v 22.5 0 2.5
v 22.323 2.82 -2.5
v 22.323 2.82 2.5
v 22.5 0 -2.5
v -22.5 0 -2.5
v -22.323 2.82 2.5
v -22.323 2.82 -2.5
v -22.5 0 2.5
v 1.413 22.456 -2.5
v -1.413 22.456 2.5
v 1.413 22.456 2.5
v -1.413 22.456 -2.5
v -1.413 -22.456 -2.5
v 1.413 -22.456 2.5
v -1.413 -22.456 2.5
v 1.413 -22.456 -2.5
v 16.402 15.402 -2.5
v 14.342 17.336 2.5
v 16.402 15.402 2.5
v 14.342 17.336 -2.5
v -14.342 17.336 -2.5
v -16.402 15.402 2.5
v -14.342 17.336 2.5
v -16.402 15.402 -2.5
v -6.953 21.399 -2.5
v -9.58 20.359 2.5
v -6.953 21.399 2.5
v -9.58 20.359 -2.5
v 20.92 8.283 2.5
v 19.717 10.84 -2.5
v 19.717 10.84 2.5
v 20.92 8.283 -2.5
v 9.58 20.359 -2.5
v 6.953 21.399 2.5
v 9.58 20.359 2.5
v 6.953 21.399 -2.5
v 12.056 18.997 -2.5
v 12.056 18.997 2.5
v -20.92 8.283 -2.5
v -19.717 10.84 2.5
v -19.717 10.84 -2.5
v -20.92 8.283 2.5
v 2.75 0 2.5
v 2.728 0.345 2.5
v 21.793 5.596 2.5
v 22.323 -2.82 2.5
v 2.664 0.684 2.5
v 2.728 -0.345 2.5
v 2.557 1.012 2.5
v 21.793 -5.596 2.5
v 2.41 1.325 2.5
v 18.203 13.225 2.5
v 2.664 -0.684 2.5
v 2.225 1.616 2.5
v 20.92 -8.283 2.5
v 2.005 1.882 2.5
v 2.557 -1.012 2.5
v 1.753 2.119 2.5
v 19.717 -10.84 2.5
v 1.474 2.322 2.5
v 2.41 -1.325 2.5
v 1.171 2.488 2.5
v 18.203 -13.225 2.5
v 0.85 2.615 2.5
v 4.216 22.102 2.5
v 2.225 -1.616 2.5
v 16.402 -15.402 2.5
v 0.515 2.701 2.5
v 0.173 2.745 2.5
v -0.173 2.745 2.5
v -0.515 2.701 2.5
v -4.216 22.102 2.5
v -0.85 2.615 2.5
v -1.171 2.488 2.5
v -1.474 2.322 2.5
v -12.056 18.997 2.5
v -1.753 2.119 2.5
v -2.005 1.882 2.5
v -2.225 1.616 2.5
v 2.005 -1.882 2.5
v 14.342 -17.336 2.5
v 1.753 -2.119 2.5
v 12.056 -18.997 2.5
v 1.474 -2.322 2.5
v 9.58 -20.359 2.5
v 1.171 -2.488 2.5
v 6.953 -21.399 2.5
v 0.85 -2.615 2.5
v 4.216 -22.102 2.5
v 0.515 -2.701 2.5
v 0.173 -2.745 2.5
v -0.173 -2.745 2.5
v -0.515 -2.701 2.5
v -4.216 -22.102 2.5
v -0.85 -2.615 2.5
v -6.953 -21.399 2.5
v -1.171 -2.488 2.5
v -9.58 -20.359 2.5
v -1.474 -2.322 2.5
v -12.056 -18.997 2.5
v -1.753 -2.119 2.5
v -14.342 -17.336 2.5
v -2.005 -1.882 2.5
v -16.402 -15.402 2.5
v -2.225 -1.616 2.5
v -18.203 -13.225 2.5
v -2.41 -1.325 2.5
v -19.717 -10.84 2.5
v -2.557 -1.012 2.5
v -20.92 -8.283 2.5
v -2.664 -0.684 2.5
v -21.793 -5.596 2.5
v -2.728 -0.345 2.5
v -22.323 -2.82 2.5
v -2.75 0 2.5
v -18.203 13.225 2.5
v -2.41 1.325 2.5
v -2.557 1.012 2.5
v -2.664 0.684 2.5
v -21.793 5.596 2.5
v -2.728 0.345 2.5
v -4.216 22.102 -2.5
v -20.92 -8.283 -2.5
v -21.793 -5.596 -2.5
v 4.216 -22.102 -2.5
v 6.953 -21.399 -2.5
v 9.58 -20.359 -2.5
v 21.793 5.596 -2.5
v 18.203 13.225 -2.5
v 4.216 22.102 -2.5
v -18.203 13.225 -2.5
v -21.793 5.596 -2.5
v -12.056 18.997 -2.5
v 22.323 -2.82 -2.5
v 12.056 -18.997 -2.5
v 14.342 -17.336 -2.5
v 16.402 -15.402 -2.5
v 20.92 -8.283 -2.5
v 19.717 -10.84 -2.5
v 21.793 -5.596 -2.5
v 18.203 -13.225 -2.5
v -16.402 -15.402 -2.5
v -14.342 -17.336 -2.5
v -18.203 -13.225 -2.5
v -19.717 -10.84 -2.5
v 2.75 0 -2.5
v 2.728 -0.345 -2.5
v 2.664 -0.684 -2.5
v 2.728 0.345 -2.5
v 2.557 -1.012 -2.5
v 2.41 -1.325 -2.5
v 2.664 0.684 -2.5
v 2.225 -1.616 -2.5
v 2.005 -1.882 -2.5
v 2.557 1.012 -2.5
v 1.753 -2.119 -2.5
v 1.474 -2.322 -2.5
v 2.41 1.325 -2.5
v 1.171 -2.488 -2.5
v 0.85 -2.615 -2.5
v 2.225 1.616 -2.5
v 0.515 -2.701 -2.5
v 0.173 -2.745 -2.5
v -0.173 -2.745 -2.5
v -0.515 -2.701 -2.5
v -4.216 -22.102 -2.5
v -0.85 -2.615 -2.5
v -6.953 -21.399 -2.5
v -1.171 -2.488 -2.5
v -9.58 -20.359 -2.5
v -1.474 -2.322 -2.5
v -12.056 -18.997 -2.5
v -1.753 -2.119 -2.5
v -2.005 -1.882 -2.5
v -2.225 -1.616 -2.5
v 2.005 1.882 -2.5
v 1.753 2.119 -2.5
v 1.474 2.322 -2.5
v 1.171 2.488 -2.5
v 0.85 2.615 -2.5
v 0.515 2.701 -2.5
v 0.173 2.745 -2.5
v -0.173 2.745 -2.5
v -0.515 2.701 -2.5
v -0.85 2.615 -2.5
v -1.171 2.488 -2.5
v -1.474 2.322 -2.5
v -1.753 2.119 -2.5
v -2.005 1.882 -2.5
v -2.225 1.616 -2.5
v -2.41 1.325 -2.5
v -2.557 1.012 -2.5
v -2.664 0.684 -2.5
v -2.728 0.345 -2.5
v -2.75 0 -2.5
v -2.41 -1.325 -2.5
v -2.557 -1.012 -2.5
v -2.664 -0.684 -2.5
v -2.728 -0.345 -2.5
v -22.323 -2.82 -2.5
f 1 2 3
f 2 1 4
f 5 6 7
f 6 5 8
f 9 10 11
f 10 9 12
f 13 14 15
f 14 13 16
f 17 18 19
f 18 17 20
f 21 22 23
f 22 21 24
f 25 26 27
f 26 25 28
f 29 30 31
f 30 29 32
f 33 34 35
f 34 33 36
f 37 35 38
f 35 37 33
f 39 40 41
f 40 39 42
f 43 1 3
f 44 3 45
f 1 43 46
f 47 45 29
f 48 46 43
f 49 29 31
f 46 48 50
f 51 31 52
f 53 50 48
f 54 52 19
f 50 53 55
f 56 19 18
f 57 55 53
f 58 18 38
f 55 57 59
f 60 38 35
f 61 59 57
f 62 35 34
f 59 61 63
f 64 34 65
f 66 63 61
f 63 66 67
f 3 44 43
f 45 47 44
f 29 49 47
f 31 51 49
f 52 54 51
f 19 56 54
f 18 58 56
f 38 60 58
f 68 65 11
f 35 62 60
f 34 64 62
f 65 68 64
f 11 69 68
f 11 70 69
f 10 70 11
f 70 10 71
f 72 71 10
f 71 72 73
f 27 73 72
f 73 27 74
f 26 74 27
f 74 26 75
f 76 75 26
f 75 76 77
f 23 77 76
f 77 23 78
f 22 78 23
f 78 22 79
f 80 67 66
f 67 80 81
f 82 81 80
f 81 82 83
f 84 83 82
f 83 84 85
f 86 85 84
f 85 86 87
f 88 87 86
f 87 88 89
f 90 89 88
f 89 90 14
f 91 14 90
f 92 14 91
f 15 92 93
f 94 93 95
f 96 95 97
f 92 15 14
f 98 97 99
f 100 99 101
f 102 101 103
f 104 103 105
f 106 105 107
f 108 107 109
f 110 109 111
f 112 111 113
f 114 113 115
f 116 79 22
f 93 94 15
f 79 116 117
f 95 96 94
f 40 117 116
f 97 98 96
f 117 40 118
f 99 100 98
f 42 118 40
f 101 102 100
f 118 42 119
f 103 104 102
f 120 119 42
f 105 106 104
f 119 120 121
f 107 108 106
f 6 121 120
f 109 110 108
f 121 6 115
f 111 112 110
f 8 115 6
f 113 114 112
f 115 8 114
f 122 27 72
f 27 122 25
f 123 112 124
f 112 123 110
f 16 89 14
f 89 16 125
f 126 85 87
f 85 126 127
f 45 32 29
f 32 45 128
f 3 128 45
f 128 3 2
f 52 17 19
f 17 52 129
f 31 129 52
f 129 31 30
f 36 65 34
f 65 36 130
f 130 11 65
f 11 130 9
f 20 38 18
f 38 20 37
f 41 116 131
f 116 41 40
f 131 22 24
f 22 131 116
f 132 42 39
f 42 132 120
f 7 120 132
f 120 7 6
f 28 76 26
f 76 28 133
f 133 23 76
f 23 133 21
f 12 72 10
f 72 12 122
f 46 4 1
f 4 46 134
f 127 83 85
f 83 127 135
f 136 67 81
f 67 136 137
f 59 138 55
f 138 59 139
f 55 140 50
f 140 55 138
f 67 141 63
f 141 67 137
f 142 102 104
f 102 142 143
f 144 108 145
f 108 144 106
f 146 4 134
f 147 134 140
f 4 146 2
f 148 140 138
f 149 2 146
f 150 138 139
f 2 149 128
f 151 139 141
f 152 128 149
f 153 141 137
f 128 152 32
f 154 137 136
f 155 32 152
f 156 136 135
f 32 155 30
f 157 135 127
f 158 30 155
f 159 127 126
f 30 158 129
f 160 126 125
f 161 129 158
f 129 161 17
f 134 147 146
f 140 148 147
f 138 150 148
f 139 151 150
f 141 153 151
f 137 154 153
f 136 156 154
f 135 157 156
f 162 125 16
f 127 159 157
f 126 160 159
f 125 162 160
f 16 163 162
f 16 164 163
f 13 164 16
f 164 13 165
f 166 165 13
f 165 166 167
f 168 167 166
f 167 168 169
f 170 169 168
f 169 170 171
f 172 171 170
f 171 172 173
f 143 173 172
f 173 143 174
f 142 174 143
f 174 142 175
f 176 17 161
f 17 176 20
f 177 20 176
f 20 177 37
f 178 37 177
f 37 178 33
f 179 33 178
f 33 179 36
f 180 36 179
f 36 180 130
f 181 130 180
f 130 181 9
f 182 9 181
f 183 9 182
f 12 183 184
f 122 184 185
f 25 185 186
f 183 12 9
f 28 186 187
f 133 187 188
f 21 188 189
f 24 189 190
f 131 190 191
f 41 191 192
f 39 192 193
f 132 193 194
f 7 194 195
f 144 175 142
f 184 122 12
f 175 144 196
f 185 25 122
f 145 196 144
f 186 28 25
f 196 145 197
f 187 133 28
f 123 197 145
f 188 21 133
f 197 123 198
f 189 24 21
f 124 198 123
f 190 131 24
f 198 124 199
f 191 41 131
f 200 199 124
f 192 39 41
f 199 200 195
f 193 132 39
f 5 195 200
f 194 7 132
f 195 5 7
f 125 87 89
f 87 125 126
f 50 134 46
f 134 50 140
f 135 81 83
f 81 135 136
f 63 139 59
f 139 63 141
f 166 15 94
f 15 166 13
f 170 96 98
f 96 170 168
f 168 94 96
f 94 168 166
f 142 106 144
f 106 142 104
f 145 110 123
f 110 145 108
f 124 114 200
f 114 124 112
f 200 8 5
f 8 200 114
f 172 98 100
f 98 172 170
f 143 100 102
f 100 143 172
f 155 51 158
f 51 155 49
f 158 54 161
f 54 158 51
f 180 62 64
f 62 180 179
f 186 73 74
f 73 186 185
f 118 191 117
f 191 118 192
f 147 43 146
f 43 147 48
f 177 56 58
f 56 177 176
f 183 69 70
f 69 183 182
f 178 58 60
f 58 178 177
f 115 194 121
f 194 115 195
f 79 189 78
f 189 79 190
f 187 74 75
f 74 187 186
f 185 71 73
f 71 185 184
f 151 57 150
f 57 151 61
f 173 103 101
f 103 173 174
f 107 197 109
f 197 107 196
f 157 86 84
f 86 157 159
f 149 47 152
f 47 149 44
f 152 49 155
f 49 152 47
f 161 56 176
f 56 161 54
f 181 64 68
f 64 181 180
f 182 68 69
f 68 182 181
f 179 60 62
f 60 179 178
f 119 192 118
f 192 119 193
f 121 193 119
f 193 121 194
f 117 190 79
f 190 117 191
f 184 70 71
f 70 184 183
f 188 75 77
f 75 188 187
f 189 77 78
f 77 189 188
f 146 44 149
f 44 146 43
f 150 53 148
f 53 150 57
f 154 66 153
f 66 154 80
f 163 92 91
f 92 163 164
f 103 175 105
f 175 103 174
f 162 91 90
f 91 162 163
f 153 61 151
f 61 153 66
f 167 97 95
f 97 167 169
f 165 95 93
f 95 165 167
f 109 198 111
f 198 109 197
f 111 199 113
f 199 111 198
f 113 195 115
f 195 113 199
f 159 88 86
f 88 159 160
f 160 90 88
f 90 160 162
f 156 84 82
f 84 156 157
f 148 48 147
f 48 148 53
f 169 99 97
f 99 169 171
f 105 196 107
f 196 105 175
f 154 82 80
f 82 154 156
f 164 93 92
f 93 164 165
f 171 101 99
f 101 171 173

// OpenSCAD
$fn = 50;


difference() {
	union() {
		translate(v = [0, 0, -2.5000000000]) {
			cylinder(h = 5, r = 22.5000000000);
		}
	}
	union() {
		translate(v = [0, 0, -100.0000000000]) {
			cylinder(h = 200, r = 2.7500000000);
		}
	}
}
